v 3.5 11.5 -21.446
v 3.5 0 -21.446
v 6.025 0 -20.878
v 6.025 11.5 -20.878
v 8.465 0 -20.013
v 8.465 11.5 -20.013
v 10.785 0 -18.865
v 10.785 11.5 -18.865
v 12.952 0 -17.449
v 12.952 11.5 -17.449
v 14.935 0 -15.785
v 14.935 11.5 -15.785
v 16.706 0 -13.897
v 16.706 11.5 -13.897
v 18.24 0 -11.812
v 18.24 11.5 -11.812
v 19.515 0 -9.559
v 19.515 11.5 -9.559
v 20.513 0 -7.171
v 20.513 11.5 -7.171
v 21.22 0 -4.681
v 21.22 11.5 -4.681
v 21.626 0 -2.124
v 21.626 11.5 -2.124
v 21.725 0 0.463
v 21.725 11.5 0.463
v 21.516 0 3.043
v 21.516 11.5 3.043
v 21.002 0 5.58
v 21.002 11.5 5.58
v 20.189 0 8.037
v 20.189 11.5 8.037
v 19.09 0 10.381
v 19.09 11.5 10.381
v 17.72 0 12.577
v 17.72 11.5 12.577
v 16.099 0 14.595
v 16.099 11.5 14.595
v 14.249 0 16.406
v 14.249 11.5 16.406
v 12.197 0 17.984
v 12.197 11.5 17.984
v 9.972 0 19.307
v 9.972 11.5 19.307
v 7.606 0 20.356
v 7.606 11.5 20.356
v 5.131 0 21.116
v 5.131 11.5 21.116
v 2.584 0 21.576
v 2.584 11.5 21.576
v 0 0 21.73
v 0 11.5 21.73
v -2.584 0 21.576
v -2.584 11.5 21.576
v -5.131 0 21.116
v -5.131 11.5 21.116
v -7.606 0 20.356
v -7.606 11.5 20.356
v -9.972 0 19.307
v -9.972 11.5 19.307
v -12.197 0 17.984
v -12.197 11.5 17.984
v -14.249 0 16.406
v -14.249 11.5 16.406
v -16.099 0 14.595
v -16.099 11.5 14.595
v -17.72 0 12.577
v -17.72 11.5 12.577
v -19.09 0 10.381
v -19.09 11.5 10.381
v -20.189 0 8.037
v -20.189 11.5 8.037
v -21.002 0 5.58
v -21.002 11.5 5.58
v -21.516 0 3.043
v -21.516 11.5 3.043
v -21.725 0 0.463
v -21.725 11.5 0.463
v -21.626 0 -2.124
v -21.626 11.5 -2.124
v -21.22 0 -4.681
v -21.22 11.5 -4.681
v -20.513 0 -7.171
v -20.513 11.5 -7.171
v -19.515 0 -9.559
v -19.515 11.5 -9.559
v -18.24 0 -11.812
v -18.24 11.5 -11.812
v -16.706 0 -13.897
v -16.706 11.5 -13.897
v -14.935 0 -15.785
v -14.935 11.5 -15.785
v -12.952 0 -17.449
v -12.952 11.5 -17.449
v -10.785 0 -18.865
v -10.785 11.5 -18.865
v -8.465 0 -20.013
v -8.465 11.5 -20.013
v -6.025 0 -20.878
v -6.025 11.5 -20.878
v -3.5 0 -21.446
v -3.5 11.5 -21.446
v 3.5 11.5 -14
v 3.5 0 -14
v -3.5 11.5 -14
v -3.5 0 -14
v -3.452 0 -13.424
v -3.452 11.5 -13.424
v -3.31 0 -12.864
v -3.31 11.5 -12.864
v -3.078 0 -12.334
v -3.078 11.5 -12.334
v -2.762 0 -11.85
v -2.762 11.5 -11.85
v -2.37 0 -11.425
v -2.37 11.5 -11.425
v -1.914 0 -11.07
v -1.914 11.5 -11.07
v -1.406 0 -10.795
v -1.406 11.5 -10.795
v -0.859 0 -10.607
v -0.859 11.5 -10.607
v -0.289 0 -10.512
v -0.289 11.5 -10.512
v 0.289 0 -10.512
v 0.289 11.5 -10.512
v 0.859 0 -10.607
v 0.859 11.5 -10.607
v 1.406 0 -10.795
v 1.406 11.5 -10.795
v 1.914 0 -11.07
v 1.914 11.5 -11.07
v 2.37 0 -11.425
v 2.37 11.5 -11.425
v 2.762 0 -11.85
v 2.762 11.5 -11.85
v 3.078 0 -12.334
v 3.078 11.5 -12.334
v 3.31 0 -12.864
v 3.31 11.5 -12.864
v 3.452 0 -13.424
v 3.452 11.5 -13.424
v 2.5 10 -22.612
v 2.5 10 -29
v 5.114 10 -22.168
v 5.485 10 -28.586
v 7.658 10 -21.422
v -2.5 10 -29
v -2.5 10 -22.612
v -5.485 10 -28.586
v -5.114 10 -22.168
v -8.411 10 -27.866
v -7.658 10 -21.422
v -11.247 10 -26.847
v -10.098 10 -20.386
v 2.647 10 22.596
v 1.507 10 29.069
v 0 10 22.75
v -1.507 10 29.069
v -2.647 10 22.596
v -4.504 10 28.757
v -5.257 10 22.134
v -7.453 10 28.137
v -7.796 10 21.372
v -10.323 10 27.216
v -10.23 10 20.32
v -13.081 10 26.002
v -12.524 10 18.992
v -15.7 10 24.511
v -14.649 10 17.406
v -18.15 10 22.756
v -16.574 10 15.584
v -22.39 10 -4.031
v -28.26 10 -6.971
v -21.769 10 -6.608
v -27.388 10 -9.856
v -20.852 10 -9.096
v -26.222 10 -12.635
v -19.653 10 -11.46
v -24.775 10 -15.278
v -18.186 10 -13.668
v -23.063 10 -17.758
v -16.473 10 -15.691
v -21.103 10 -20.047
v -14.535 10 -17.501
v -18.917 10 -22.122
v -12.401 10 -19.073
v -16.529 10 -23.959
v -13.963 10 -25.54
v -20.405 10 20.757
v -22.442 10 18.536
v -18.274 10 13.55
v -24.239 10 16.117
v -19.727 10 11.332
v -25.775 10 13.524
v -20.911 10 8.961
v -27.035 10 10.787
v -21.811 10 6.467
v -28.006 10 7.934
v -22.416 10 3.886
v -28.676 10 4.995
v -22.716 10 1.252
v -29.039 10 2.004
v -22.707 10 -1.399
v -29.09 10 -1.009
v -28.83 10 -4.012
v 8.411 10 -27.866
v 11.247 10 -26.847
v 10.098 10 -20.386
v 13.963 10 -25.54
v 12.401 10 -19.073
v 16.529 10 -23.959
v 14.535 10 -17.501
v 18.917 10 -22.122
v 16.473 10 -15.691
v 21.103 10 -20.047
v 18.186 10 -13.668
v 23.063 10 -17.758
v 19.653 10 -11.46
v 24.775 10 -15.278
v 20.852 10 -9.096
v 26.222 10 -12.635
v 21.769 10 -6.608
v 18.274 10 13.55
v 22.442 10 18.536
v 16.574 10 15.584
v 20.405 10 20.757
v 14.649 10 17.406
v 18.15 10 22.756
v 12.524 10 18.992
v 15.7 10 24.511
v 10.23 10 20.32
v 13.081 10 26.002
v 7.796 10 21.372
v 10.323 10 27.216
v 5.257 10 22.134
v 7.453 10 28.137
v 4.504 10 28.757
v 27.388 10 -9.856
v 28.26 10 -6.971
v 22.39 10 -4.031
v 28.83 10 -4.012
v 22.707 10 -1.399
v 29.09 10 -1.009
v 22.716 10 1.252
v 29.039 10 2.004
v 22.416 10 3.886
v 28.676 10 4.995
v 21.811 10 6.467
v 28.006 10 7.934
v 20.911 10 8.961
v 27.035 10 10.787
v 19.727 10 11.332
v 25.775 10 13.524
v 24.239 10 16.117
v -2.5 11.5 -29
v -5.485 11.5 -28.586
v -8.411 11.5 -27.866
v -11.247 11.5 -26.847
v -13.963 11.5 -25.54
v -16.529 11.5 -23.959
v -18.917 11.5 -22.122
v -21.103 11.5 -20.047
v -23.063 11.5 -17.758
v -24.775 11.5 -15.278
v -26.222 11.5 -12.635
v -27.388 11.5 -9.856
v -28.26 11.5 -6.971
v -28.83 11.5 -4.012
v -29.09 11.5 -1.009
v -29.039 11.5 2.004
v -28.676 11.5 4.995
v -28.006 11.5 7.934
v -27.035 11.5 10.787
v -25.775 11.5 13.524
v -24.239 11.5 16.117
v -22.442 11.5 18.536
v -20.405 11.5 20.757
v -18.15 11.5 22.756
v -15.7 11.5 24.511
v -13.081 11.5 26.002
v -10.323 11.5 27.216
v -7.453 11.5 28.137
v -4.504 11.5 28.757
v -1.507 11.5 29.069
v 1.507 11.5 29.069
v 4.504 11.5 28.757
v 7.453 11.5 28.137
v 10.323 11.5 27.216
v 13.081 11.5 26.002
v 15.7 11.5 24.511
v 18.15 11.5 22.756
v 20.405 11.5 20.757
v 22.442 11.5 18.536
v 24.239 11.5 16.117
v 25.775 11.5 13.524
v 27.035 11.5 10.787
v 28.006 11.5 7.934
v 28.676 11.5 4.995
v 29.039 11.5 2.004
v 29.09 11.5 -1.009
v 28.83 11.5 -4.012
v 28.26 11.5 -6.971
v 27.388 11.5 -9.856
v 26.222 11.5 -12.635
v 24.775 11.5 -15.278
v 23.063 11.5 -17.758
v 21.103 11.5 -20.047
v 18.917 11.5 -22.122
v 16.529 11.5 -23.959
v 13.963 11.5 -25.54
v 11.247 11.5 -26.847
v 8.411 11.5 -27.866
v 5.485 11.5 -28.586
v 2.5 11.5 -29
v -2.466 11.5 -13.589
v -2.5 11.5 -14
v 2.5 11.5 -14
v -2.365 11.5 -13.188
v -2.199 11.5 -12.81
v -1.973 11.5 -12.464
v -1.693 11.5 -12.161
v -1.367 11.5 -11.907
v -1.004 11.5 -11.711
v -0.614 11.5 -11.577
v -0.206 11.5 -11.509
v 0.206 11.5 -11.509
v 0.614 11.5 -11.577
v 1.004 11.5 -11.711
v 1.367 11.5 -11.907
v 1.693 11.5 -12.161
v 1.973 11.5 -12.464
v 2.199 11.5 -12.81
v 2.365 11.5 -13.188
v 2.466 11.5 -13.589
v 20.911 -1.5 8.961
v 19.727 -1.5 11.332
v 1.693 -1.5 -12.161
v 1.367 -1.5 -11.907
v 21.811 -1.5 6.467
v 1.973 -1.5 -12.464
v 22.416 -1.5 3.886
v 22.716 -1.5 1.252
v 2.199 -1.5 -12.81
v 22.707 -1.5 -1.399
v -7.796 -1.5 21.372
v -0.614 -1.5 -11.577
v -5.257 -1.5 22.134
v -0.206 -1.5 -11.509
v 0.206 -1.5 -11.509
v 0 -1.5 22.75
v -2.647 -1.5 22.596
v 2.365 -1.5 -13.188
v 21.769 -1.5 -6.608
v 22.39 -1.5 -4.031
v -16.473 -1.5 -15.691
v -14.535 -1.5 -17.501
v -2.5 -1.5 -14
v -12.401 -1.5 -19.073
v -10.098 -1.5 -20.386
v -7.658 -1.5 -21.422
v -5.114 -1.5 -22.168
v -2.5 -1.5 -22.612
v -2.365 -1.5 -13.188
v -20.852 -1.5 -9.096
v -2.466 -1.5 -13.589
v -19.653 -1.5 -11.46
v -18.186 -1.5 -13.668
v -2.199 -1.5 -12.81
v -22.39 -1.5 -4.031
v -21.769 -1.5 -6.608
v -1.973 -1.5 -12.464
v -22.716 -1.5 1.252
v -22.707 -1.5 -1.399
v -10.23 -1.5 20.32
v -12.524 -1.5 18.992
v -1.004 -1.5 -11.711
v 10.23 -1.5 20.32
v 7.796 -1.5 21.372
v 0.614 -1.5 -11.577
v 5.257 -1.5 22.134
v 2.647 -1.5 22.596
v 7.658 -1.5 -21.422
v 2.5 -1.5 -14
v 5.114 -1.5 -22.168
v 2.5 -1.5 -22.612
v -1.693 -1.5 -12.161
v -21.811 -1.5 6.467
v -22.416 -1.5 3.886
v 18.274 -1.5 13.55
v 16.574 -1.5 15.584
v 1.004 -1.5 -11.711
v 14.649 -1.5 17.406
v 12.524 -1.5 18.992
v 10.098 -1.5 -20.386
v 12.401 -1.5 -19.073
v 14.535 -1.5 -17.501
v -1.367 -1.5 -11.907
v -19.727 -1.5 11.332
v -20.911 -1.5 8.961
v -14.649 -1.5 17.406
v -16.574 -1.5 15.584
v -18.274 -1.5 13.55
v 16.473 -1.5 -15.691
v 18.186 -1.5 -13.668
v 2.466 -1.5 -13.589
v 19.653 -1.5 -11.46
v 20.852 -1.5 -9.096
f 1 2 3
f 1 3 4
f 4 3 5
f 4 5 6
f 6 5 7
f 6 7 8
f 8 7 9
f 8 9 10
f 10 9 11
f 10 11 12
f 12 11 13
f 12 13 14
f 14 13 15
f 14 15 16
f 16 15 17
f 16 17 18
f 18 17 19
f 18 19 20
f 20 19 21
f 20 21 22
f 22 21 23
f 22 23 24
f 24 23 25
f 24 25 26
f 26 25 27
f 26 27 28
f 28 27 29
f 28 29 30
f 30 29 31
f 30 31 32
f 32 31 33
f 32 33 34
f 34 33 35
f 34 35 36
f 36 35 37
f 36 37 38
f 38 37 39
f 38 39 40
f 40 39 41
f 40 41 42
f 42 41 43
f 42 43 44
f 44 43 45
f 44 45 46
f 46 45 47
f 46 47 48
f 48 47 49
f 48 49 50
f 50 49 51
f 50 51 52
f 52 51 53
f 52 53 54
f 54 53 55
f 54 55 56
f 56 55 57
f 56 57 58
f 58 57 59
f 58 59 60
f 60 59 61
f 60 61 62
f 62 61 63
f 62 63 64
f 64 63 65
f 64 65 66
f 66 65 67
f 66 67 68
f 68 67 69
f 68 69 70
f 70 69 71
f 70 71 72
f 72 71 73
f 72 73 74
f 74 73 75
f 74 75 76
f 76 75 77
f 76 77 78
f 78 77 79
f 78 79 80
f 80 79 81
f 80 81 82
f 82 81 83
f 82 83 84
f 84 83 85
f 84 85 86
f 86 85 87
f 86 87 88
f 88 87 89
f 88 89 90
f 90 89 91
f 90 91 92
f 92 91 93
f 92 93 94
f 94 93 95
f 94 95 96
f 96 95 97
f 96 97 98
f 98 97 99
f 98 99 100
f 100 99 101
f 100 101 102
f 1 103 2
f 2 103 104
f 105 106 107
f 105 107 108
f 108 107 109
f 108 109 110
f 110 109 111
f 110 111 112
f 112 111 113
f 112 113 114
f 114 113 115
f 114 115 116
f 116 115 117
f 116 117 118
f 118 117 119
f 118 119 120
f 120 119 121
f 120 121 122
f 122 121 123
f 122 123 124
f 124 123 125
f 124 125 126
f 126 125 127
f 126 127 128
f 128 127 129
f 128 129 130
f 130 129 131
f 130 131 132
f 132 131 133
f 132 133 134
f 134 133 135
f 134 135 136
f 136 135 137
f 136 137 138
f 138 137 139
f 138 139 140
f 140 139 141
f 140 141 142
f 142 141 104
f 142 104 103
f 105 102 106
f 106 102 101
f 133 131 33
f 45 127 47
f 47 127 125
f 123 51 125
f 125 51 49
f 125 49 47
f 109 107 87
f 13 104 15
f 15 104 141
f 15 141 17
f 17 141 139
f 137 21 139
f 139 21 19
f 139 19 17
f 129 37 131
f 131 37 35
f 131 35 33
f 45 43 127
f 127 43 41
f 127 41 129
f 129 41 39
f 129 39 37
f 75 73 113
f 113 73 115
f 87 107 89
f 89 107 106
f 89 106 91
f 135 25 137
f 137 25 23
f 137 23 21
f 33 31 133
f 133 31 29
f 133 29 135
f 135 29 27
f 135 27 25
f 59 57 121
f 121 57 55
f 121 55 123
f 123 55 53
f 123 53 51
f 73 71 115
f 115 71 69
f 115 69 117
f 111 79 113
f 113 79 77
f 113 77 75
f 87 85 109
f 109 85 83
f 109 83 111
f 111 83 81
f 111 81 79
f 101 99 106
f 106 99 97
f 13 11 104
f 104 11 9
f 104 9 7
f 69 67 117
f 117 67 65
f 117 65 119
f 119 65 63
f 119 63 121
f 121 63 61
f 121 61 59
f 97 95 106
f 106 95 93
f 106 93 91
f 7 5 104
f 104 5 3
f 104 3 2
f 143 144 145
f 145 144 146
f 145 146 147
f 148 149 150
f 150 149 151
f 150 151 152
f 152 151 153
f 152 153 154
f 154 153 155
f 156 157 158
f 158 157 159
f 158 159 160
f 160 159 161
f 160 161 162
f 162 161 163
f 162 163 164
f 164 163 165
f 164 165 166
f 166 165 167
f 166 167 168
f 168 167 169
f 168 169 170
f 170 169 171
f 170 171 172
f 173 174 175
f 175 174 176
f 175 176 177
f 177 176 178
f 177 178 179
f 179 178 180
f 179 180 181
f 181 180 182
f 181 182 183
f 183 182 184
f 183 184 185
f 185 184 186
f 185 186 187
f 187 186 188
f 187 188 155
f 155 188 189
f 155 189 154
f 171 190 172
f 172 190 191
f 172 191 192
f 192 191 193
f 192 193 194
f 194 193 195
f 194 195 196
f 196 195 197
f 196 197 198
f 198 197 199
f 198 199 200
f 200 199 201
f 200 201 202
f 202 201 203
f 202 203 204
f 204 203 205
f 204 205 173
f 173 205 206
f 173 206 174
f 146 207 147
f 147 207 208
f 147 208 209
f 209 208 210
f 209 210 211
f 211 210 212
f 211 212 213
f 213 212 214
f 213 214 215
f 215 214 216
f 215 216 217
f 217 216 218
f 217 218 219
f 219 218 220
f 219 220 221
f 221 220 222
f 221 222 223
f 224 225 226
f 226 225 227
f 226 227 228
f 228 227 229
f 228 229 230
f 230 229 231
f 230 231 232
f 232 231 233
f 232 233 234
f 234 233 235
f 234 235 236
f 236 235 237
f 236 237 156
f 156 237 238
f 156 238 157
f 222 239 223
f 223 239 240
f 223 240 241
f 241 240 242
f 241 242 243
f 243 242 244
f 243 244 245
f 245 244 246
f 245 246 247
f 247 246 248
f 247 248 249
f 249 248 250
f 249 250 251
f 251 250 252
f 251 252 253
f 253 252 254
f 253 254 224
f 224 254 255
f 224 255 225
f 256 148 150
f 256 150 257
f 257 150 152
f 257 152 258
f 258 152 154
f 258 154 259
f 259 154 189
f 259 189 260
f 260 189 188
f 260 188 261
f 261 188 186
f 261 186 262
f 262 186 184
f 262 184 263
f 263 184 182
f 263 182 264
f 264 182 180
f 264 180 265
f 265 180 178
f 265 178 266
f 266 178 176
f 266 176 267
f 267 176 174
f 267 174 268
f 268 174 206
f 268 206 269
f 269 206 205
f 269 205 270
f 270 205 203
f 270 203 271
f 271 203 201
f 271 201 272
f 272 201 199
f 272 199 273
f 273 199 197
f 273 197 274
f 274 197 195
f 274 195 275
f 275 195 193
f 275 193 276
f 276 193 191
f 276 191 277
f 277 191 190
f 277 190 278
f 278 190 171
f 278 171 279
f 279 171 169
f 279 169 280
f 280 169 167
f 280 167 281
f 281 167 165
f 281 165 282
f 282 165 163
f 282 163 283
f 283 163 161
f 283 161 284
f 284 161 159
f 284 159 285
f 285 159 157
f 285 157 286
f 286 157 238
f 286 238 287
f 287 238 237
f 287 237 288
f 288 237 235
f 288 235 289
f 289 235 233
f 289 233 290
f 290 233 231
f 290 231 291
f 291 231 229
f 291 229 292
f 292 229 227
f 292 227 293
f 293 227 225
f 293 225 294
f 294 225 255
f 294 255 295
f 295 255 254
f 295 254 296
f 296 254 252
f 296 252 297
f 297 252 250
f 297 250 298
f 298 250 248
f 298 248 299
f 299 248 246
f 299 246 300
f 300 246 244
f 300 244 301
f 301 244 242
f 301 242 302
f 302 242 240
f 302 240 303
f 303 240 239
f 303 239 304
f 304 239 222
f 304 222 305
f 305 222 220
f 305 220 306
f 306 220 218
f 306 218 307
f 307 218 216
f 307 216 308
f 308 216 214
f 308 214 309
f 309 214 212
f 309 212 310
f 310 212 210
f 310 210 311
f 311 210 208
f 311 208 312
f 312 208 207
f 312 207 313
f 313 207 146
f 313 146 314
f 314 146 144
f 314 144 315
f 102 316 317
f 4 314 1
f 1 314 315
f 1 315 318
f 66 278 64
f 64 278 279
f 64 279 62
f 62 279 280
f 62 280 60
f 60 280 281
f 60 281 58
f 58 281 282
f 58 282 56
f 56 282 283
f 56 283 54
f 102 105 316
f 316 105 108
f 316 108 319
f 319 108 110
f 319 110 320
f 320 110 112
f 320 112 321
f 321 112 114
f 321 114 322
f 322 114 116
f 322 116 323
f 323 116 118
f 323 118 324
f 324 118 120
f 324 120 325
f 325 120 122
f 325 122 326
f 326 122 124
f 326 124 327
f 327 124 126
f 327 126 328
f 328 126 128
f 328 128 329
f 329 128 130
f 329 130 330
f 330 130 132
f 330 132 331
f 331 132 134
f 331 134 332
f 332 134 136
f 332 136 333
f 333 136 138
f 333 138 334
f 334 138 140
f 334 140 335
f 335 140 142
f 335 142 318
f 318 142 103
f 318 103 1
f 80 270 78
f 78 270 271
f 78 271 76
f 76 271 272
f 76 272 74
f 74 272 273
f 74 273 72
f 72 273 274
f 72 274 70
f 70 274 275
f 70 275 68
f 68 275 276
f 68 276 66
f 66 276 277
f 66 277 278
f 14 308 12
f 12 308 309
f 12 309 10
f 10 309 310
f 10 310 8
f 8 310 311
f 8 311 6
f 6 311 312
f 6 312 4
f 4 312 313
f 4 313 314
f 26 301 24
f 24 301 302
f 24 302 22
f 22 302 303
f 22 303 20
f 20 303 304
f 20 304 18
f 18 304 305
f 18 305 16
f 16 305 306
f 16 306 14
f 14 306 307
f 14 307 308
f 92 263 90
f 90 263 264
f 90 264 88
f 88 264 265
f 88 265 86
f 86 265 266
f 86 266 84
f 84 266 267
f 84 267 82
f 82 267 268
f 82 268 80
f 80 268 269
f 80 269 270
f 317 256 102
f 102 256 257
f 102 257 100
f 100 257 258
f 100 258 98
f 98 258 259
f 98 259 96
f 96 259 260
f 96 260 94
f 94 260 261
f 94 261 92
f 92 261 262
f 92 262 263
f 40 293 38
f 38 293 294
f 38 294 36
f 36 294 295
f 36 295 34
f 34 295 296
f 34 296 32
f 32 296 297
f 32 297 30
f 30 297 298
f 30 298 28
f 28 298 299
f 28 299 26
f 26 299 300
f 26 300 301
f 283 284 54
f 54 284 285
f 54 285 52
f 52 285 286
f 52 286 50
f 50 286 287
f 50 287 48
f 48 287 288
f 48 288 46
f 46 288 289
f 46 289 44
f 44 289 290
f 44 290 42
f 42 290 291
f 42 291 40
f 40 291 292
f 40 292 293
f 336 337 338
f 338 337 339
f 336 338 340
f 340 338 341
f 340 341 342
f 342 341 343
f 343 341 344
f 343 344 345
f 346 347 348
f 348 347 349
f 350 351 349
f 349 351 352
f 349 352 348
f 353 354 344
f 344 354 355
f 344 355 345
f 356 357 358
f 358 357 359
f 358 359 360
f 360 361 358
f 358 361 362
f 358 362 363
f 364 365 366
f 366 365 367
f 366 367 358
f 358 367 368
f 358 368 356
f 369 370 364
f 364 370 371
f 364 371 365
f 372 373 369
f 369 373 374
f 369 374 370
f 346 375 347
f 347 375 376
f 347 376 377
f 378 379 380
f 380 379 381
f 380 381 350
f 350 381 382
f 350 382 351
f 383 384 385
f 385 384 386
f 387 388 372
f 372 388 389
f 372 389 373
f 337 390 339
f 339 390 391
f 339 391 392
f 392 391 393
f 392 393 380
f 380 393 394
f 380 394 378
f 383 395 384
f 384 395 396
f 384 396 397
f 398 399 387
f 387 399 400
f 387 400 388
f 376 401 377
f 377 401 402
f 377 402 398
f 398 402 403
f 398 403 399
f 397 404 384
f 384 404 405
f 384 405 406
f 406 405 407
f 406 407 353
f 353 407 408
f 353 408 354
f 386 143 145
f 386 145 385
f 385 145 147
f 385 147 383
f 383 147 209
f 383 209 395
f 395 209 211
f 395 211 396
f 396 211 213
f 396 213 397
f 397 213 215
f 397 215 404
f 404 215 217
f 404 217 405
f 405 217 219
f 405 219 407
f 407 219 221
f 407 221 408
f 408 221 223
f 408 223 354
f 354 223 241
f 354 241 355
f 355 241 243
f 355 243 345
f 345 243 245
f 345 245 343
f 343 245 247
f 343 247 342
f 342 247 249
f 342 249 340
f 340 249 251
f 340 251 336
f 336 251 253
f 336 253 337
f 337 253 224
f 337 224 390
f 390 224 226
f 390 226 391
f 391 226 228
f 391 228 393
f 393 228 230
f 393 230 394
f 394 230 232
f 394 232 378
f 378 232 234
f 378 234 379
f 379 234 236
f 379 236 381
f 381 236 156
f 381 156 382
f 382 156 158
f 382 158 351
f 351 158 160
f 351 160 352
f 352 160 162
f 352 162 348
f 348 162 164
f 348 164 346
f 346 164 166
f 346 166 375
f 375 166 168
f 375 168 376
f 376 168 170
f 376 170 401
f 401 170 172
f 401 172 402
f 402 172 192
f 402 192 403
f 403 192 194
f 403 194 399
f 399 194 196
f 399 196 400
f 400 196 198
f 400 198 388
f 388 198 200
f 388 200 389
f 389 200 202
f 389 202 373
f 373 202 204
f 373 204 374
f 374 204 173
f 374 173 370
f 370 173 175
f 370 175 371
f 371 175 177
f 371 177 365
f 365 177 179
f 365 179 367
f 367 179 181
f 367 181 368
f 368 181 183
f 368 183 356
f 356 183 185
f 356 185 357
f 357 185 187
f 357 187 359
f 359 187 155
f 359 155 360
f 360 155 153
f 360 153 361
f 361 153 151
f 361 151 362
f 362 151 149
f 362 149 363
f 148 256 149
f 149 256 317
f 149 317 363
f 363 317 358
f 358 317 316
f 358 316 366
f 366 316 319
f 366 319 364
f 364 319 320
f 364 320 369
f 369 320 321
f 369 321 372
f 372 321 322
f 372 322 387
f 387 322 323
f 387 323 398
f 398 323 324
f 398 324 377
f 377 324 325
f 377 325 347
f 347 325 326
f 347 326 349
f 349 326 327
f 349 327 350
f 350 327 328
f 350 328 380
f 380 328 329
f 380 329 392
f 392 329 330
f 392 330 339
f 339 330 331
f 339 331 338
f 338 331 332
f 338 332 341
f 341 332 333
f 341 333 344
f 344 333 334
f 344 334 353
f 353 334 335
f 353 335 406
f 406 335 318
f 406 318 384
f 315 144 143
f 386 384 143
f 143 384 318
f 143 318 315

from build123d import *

# Parameters (mm, degrees)
BOSS_EXTRUDE11_DEPTH = 1.5
BOSS_EXTRUDE12_START = 10
BOSS_EXTRUDE12_DEPTH = 10
BOSS_EXTRUDE15_START = 11.5
BOSS_EXTRUDE15_DEPTH = 1.5


with BuildPart() as part:
    # base → Boss-Extrude11 (new body)
    with BuildSketch(Plane(origin=(0, 0, 0), x_dir=(1, 0, 0), z_dir=(0, 1, 0))):
        with BuildLine():
            Line((-2.5, 14), (-2.5, 22.612220148))
            ThreePointArc((-2.5, 22.612220148), (0, -22.75), (2.5, 22.612220148))
            Line((2.5, 22.612220148), (2.5, 14))
            ThreePointArc((2.5, 14), (0, 11.5), (-2.5, 14))
        make_face()
    extrude(amount=-BOSS_EXTRUDE11_DEPTH)

    # rim → Boss-Extrude12 (add)
    with BuildSketch(Plane(origin=(0, 0, 0), x_dir=(1, 0, 0), z_dir=(0, 1, 0)).offset(BOSS_EXTRUDE12_START)):
        with BuildLine():
            Line((2.5, 22.612220148), (2.5, 14))
            ThreePointArc((2.5, 14), (0, 11.5), (-2.5, 14))
            Line((-2.5, 14), (-2.5, 22.612220148))
            ThreePointArc((-2.5, 22.612220148), (0, -22.75), (2.5, 22.612220148))
        make_face()
        with BuildLine():
            Line((-3.5, 21.446457505), (-3.5, 14))
            ThreePointArc((-3.5, 14), (0, 10.5), (3.5, 14))
            Line((3.5, 14), (3.5, 21.446457505))
            ThreePointArc((3.5, 21.446457505), (0, -21.730175782), (-3.5, 21.446457505))
        make_face(mode=Mode.SUBTRACT)
    extrude(amount=-BOSS_EXTRUDE12_DEPTH)

    # lid → Boss-Extrude15 (add)
    with BuildSketch(Plane(origin=(0, 0, 0), x_dir=(1, 0, 0), z_dir=(0, 1, 0)).offset(BOSS_EXTRUDE15_START)):
        with BuildLine():
            Line((-2.5, 14), (-2.5, 29))
            ThreePointArc((-2.5, 29), (0, -29.107559156), (2.5, 29))
            Line((2.5, 29), (2.5, 14))
            ThreePointArc((2.5, 14), (0, 11.5), (-2.5, 14))
        make_face()
        with BuildLine():
            ThreePointArc((-3.5, 21.446457505), (0, -21.730175782), (3.5, 21.446457505))
            Line((3.5, 21.446457505), (3.5, 14))
            ThreePointArc((3.5, 14), (0, 10.5), (-3.5, 14))
            Line((-3.5, 14), (-3.5, 21.446457505))
        make_face(mode=Mode.SUBTRACT)
    extrude(amount=-BOSS_EXTRUDE15_DEPTH)


solid = part.part
